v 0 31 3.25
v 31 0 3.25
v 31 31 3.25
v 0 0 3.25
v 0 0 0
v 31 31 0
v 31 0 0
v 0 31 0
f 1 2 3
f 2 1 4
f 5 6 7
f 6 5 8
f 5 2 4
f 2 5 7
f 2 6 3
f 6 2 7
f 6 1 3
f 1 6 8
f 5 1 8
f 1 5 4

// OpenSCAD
/* Warning, this is a very basic generator with a lot of approximation 
input data : [B2BGA, NHC, 31x31x3.25mm, 896, , A, C04-25476A]
generated by com.zoubworld.electronics.cad.model3d.Basic
Date : Sun Feb 15 10:50:49 CET 2026
*/

//body
color("black")
translate([0,0,0])
cube([31.0,31.0,3.25], center=false);
